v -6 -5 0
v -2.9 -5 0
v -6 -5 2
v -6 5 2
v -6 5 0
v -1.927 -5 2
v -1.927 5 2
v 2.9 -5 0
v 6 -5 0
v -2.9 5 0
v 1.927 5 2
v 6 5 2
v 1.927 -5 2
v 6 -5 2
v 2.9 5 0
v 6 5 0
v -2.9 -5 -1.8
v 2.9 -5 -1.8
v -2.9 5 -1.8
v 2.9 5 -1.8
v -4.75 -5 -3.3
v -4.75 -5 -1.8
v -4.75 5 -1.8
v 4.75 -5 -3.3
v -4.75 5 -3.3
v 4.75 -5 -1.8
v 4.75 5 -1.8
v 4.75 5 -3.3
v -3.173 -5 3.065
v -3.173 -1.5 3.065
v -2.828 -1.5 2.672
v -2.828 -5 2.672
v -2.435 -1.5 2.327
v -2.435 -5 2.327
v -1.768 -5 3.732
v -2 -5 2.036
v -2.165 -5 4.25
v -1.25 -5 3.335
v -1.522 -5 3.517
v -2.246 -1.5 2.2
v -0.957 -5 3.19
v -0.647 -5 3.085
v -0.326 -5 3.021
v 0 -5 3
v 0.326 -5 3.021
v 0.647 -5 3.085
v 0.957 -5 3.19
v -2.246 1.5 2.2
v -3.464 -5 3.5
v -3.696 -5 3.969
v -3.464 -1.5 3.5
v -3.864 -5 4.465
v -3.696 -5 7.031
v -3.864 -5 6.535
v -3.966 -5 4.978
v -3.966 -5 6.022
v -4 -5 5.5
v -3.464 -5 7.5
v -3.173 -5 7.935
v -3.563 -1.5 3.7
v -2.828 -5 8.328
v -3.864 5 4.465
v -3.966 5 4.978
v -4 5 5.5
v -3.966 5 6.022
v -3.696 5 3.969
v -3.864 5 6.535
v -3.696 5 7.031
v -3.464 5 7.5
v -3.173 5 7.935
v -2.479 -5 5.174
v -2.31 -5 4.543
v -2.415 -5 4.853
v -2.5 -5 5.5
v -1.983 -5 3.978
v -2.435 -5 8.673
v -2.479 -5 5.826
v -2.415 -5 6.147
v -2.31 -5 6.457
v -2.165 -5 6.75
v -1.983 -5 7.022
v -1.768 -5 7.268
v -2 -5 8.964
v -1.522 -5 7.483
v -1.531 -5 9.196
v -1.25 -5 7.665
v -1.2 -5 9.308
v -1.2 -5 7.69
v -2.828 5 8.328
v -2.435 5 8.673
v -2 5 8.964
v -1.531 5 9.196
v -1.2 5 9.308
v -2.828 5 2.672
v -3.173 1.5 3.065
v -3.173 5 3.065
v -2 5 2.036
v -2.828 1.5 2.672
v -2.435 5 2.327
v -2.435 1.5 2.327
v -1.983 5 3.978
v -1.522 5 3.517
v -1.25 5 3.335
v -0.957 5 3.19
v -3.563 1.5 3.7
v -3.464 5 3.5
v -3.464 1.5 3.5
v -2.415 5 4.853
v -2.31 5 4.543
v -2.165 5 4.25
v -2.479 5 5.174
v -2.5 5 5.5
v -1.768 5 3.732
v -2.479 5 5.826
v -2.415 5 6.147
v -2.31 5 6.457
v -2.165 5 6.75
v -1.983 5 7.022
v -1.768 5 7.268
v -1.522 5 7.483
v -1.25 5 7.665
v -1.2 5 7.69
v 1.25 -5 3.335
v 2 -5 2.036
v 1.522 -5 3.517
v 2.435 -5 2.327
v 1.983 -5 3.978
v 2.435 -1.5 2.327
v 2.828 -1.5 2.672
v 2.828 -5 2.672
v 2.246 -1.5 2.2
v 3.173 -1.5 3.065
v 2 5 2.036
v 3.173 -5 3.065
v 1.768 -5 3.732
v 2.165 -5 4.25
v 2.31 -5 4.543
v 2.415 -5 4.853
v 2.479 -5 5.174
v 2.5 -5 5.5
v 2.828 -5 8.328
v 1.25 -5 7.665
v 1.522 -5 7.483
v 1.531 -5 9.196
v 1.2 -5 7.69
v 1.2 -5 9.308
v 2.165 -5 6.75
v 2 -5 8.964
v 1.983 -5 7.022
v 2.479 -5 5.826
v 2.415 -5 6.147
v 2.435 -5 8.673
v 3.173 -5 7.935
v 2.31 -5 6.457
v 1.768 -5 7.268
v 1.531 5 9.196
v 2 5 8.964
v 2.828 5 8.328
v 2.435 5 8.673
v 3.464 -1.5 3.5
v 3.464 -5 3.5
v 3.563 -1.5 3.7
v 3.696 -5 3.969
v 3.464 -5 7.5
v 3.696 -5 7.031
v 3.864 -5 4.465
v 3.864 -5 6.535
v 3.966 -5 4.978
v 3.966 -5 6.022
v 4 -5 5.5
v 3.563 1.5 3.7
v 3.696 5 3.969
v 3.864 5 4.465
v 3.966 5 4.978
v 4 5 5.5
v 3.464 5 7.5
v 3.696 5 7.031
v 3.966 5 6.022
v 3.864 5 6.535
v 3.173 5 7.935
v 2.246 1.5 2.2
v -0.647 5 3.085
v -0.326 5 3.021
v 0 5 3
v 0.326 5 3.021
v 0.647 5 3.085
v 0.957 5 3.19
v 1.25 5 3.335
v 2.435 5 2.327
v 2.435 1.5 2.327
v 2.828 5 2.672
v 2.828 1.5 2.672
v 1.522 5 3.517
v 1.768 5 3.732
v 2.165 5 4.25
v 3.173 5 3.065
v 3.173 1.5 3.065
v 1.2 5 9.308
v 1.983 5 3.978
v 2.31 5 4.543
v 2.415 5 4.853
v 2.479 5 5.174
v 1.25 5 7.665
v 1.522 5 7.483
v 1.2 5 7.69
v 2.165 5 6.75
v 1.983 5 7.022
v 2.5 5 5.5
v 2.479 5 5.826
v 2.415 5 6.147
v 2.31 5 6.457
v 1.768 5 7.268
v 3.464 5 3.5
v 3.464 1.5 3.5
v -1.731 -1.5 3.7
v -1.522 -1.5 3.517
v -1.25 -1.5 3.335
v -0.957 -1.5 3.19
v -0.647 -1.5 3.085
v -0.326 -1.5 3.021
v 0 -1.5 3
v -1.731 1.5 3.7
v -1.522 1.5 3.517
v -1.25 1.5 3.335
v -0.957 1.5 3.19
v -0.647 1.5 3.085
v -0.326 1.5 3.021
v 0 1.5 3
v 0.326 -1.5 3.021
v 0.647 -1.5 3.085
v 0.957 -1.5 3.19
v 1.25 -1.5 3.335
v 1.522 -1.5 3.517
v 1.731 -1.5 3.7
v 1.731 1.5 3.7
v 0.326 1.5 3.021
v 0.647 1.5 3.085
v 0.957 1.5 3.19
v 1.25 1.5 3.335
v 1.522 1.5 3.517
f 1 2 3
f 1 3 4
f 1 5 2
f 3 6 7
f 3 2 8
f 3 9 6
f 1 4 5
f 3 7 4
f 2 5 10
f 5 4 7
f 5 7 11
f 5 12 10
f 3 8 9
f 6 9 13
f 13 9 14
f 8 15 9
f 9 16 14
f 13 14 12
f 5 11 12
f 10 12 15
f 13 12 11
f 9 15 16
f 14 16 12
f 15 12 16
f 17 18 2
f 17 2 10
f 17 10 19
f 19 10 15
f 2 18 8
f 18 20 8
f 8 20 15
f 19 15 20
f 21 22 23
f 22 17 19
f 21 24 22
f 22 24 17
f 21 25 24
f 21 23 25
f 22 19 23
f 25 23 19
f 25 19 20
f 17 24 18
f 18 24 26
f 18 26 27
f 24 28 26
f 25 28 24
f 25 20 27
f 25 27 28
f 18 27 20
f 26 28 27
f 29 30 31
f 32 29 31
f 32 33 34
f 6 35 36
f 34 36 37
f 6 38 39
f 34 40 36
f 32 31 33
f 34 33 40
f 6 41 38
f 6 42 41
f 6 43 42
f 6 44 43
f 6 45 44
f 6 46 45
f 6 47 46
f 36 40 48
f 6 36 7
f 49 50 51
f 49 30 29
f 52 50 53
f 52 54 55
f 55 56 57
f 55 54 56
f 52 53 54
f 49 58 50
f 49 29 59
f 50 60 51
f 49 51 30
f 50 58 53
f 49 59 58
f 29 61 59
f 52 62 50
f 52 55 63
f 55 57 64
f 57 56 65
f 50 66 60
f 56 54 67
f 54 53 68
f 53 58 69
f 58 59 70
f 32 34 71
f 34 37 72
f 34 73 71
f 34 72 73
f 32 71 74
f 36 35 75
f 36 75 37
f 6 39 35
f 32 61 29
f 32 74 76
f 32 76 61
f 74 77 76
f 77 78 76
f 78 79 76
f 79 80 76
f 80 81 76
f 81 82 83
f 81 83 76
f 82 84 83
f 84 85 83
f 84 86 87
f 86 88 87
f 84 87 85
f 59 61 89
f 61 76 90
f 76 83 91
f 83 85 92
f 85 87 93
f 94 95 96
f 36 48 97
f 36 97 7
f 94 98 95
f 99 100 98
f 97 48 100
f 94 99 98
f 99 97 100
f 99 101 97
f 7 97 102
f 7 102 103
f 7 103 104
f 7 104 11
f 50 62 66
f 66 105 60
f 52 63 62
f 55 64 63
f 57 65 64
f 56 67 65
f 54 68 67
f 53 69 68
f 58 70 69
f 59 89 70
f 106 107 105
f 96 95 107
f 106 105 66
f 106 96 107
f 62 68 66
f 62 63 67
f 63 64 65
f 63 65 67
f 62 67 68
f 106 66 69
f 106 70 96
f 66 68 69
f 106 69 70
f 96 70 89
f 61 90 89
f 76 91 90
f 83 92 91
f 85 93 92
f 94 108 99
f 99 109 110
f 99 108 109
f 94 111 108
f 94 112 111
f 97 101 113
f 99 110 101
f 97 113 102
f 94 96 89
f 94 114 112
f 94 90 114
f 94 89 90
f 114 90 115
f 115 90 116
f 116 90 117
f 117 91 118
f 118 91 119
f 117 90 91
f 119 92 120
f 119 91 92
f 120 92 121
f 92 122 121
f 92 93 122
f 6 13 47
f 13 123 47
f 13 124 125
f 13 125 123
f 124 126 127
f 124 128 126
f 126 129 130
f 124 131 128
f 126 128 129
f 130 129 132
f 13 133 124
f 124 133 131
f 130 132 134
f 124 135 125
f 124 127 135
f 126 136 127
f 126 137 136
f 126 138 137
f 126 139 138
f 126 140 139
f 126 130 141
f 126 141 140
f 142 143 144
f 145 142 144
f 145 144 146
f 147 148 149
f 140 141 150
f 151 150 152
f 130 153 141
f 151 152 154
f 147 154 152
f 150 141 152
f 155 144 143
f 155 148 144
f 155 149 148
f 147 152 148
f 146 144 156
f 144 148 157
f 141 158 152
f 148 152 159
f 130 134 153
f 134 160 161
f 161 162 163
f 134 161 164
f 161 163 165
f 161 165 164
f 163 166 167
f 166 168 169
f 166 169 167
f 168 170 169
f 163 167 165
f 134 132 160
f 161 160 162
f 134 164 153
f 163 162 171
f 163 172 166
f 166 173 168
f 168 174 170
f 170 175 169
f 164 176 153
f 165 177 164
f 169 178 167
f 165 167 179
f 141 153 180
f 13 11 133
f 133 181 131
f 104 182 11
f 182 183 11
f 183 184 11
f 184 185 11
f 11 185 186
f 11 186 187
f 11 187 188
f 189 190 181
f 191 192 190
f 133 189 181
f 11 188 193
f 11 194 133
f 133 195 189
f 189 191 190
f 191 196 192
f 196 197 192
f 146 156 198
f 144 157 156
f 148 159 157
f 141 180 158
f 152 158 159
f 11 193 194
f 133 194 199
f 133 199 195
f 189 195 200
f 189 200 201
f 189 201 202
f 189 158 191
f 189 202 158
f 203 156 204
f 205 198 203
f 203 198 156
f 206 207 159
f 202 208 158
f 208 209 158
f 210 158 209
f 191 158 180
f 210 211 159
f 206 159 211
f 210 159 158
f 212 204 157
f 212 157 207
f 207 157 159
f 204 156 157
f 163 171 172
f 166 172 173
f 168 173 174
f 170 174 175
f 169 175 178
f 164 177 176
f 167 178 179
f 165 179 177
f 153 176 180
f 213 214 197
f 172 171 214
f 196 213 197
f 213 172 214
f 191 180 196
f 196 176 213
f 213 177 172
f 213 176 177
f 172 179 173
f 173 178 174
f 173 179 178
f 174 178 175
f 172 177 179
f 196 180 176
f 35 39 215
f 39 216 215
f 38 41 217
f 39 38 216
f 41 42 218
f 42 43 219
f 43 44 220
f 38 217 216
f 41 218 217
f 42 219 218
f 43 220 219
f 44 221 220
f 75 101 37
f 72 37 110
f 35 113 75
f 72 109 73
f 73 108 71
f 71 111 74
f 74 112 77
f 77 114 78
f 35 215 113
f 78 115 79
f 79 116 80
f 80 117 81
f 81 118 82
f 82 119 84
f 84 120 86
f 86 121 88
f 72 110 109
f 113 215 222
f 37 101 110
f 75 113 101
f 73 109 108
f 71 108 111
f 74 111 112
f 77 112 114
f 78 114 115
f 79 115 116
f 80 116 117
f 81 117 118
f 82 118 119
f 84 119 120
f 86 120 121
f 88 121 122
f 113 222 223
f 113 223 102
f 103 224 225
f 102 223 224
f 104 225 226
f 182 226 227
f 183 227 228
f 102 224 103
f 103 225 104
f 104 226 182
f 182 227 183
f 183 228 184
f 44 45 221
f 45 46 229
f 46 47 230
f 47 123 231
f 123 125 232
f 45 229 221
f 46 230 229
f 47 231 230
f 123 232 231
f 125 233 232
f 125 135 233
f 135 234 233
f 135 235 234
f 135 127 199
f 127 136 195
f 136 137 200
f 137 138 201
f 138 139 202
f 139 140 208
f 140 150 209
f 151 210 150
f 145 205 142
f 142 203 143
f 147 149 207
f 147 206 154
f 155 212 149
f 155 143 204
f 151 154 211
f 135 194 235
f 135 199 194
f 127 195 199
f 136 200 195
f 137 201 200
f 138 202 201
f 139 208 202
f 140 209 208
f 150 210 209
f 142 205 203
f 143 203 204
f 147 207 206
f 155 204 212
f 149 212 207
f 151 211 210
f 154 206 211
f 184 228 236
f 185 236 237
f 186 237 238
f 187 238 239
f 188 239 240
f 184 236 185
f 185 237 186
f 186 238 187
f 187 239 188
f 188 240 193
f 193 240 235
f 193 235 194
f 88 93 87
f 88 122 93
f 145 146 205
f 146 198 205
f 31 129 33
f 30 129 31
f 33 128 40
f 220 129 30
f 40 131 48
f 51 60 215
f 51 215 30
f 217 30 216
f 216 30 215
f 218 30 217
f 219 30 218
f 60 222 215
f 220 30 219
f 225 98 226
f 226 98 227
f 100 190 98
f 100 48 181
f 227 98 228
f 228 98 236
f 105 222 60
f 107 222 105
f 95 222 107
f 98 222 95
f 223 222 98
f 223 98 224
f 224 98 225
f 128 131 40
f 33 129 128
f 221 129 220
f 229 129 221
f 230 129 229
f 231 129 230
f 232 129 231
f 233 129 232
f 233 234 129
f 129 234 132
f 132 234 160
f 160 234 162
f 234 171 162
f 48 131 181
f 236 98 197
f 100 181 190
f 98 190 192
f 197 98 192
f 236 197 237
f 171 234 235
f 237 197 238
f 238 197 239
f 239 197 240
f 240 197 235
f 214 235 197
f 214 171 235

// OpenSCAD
// =====================================================================
//  p36_cable_clip.scad - P36 cable clip (x6): 2020 T-slot snap, 5 mm cable loop, zip-tie slot
//  PROJECT SCRATCH · 05-engineering/cad/frame · units: mm · frame: local (base plate z 0..2, snap foot below, loop above)
//  Sources: mechanical.md section 3.3 (DXL cable with a 60 mm service loop in clip P36), 11 P36 (12 x 10 x 8).
//  Envelope 12 x 10 x 12.6: a diam 5 loop plus the 3.3 snap foot cannot fit in 8 (C-T1).  Print flat (loop up).
// =====================================================================
include <lib_sp1.scad>
CX = 12;  CY = 10;  BASE_T = 2;  NECK_W = 5.8;  NECK_H = 1.8;  FOOT_W = 9.5;  FOOT_T = 1.5;  LOOP_ID = 5;  LOOP_WALL = 1.5;  TIE = [3, 1.5];
module p36_cable_clip() difference() {
    union() {
        cbox(0, 0, BASE_T / 2, CX, CY, BASE_T);
        cbox(0, 0, -NECK_H / 2, NECK_W, CY, NECK_H);                                   // neck through the 6 mm slot opening
        cbox(0, 0, -NECK_H - FOOT_T / 2, FOOT_W, CY, FOOT_T);                          // snap foot inside the slot
        rid = LOOP_ID / 2; zc = BASE_T + rid + LOOP_WALL - 0.5;
        difference() {
            cyl_y(rid + LOOP_WALL, -CY / 2, CY / 2, 0, zc);
            cyl_y(rid, -CY - 1, CY + 1, 0, zc);
            box(-1.2, 1.2, -CY - 1, CY + 1, BASE_T + rid + LOOP_WALL, BASE_T + 2 * rid + 3 * LOOP_WALL);   // C opening
        }
    }
    box(-CX / 2 - 1, CX / 2 + 1, -TIE[0] / 2, TIE[0] / 2, BASE_T + 0.2, BASE_T + 0.2 + TIE[1]);        // zip-tie slot
}
p36_cable_clip();
